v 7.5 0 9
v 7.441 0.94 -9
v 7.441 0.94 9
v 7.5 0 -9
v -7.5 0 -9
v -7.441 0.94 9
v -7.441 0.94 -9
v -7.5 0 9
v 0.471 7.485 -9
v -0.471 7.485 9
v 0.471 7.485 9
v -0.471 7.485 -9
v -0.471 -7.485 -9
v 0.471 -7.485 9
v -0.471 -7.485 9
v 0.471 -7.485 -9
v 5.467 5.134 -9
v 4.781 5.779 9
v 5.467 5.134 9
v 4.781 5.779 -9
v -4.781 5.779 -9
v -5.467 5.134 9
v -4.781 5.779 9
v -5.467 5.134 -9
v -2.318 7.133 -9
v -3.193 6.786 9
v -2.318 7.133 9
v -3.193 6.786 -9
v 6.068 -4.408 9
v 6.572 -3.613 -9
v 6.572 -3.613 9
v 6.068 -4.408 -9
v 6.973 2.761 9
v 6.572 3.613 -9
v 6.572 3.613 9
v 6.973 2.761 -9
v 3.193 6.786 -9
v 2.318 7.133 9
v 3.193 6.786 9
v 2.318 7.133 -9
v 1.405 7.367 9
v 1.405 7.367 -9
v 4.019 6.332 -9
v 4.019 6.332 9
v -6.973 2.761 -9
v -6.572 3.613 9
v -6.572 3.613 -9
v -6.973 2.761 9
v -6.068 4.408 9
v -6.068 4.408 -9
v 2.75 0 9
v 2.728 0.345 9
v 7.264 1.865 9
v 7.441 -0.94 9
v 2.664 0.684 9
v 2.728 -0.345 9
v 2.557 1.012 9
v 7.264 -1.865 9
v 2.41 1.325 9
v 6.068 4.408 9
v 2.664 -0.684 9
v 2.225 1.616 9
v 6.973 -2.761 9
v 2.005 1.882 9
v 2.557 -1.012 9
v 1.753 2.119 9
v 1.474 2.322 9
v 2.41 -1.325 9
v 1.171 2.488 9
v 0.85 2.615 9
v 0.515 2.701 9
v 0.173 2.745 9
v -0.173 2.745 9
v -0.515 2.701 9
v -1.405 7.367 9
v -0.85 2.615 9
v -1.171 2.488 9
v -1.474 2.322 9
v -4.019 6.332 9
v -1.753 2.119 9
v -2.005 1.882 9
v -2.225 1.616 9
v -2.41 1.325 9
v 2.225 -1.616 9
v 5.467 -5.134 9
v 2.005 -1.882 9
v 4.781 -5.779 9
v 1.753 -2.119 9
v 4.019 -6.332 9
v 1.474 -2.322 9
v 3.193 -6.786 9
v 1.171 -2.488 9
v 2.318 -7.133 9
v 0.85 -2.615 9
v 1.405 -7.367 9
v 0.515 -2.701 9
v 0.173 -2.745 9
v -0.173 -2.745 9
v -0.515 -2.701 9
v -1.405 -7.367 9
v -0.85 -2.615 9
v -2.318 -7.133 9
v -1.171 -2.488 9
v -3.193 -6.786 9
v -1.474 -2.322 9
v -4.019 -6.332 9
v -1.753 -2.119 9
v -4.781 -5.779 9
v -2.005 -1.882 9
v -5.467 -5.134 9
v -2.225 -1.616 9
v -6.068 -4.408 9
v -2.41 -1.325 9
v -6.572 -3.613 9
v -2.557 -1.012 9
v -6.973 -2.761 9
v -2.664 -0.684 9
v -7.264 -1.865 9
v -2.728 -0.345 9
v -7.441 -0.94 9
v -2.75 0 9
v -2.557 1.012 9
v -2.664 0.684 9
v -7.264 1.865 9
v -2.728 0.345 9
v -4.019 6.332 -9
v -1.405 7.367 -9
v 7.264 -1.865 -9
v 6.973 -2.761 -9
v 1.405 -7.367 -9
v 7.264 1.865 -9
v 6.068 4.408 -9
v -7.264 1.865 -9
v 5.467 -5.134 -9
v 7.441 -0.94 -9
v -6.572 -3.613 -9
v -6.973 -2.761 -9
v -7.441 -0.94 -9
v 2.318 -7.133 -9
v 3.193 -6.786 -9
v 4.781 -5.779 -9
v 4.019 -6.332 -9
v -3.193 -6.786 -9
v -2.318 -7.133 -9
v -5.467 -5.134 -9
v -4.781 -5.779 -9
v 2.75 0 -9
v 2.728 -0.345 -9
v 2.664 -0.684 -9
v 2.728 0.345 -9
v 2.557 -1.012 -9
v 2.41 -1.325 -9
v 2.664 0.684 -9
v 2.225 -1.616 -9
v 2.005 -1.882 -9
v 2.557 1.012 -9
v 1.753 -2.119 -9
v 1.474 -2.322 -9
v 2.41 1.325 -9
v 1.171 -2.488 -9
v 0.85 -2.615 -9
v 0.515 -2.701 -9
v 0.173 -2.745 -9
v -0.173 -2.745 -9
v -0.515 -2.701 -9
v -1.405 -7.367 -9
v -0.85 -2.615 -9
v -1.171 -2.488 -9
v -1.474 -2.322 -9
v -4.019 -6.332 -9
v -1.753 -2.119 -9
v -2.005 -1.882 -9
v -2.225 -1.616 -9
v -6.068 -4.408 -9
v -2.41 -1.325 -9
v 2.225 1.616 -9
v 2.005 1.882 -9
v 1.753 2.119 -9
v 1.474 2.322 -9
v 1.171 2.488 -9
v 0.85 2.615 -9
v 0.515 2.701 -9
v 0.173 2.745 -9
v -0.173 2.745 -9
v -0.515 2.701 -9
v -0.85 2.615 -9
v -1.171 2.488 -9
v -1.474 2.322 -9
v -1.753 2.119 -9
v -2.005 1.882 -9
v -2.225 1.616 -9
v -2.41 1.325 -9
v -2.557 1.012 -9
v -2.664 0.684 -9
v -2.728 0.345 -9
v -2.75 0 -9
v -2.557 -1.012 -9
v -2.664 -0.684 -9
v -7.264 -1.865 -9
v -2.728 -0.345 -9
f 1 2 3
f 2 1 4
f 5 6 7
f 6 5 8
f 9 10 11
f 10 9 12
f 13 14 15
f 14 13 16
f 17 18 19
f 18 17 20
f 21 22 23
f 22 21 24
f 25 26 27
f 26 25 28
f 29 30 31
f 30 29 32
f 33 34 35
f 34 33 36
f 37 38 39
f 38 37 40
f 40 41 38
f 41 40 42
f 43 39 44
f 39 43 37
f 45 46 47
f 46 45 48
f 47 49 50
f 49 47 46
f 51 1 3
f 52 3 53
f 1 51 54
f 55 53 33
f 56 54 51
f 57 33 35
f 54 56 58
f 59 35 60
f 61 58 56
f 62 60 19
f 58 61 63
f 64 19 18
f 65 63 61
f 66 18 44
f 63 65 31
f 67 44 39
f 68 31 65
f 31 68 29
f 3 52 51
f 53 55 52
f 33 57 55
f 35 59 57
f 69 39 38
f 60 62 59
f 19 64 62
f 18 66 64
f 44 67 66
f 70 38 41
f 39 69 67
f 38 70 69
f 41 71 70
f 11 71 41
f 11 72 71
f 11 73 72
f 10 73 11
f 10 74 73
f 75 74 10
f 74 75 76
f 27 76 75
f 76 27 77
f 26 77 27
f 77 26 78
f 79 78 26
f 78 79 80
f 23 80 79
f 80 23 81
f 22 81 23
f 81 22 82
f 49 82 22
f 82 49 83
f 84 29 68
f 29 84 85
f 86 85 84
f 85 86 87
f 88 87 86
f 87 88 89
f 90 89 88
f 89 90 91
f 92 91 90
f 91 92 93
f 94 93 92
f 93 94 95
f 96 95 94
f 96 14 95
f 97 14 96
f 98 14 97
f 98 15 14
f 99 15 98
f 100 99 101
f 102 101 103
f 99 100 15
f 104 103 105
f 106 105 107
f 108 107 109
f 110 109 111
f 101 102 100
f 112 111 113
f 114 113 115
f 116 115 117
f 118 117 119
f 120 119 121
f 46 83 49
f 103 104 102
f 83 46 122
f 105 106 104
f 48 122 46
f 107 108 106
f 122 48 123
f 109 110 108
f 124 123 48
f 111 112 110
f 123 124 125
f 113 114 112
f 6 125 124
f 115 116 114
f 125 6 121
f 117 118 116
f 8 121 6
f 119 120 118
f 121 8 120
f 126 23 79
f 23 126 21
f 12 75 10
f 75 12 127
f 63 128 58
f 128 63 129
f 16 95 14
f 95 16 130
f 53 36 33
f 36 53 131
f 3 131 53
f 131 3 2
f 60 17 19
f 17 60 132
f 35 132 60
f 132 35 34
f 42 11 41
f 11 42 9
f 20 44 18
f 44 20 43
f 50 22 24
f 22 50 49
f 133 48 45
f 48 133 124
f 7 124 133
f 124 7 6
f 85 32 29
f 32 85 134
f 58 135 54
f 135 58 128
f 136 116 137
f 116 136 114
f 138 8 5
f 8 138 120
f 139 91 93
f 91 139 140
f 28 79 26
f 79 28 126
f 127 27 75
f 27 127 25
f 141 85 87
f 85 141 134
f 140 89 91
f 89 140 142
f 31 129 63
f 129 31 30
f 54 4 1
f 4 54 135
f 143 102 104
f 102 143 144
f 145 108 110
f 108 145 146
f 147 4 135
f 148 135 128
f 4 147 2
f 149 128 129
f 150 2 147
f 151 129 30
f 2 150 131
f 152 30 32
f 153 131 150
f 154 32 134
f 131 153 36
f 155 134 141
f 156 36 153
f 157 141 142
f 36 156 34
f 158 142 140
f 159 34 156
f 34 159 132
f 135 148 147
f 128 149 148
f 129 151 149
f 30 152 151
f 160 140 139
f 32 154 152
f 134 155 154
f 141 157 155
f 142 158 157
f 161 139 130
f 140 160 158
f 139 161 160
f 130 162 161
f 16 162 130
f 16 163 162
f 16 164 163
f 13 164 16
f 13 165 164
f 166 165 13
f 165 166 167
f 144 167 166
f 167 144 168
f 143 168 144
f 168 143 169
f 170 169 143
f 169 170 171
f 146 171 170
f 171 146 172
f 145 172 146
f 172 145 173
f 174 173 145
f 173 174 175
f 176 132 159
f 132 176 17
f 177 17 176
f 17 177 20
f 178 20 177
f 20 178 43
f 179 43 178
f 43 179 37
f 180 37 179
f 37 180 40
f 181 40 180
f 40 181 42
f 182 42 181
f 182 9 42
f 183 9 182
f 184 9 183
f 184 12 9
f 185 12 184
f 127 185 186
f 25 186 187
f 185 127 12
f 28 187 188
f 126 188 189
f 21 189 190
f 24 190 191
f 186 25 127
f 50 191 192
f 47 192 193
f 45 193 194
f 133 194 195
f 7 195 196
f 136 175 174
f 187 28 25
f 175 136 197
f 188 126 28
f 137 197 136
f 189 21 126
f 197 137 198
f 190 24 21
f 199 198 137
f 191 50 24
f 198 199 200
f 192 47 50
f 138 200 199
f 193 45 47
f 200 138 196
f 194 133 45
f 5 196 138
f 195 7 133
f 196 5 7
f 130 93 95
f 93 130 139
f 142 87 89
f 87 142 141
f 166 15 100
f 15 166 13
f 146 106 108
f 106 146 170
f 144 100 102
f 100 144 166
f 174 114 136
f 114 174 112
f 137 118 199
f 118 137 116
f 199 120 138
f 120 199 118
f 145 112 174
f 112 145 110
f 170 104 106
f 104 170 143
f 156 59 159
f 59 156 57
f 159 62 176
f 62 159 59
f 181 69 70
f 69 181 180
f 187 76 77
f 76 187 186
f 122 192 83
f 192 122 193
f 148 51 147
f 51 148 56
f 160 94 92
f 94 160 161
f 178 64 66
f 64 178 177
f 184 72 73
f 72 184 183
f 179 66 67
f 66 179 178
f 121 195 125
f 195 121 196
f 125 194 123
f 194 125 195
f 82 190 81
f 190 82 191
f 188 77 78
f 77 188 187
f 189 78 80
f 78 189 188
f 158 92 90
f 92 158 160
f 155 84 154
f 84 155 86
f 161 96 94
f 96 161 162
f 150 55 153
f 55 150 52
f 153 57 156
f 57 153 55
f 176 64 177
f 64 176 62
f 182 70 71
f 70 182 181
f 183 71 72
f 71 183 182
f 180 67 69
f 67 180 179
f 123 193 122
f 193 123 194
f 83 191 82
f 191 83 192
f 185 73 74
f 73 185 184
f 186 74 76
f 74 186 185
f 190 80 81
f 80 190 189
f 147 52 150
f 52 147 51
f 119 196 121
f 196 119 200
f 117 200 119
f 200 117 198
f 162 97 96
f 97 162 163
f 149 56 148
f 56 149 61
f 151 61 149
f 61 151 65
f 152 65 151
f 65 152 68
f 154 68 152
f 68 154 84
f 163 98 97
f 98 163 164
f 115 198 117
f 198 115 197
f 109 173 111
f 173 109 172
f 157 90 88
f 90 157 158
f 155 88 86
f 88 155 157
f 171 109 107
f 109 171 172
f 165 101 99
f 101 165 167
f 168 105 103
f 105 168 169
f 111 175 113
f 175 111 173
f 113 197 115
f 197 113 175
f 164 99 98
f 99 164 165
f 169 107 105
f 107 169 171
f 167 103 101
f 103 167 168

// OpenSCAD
$fn = 50;


difference() {
	union() {
		translate(v = [0, 0, -9.0000000000]) {
			cylinder(h = 18, r = 7.5000000000);
		}
	}
	union() {
		translate(v = [0, 0, -100.0000000000]) {
			cylinder(h = 200, r = 2.7500000000);
		}
	}
}
